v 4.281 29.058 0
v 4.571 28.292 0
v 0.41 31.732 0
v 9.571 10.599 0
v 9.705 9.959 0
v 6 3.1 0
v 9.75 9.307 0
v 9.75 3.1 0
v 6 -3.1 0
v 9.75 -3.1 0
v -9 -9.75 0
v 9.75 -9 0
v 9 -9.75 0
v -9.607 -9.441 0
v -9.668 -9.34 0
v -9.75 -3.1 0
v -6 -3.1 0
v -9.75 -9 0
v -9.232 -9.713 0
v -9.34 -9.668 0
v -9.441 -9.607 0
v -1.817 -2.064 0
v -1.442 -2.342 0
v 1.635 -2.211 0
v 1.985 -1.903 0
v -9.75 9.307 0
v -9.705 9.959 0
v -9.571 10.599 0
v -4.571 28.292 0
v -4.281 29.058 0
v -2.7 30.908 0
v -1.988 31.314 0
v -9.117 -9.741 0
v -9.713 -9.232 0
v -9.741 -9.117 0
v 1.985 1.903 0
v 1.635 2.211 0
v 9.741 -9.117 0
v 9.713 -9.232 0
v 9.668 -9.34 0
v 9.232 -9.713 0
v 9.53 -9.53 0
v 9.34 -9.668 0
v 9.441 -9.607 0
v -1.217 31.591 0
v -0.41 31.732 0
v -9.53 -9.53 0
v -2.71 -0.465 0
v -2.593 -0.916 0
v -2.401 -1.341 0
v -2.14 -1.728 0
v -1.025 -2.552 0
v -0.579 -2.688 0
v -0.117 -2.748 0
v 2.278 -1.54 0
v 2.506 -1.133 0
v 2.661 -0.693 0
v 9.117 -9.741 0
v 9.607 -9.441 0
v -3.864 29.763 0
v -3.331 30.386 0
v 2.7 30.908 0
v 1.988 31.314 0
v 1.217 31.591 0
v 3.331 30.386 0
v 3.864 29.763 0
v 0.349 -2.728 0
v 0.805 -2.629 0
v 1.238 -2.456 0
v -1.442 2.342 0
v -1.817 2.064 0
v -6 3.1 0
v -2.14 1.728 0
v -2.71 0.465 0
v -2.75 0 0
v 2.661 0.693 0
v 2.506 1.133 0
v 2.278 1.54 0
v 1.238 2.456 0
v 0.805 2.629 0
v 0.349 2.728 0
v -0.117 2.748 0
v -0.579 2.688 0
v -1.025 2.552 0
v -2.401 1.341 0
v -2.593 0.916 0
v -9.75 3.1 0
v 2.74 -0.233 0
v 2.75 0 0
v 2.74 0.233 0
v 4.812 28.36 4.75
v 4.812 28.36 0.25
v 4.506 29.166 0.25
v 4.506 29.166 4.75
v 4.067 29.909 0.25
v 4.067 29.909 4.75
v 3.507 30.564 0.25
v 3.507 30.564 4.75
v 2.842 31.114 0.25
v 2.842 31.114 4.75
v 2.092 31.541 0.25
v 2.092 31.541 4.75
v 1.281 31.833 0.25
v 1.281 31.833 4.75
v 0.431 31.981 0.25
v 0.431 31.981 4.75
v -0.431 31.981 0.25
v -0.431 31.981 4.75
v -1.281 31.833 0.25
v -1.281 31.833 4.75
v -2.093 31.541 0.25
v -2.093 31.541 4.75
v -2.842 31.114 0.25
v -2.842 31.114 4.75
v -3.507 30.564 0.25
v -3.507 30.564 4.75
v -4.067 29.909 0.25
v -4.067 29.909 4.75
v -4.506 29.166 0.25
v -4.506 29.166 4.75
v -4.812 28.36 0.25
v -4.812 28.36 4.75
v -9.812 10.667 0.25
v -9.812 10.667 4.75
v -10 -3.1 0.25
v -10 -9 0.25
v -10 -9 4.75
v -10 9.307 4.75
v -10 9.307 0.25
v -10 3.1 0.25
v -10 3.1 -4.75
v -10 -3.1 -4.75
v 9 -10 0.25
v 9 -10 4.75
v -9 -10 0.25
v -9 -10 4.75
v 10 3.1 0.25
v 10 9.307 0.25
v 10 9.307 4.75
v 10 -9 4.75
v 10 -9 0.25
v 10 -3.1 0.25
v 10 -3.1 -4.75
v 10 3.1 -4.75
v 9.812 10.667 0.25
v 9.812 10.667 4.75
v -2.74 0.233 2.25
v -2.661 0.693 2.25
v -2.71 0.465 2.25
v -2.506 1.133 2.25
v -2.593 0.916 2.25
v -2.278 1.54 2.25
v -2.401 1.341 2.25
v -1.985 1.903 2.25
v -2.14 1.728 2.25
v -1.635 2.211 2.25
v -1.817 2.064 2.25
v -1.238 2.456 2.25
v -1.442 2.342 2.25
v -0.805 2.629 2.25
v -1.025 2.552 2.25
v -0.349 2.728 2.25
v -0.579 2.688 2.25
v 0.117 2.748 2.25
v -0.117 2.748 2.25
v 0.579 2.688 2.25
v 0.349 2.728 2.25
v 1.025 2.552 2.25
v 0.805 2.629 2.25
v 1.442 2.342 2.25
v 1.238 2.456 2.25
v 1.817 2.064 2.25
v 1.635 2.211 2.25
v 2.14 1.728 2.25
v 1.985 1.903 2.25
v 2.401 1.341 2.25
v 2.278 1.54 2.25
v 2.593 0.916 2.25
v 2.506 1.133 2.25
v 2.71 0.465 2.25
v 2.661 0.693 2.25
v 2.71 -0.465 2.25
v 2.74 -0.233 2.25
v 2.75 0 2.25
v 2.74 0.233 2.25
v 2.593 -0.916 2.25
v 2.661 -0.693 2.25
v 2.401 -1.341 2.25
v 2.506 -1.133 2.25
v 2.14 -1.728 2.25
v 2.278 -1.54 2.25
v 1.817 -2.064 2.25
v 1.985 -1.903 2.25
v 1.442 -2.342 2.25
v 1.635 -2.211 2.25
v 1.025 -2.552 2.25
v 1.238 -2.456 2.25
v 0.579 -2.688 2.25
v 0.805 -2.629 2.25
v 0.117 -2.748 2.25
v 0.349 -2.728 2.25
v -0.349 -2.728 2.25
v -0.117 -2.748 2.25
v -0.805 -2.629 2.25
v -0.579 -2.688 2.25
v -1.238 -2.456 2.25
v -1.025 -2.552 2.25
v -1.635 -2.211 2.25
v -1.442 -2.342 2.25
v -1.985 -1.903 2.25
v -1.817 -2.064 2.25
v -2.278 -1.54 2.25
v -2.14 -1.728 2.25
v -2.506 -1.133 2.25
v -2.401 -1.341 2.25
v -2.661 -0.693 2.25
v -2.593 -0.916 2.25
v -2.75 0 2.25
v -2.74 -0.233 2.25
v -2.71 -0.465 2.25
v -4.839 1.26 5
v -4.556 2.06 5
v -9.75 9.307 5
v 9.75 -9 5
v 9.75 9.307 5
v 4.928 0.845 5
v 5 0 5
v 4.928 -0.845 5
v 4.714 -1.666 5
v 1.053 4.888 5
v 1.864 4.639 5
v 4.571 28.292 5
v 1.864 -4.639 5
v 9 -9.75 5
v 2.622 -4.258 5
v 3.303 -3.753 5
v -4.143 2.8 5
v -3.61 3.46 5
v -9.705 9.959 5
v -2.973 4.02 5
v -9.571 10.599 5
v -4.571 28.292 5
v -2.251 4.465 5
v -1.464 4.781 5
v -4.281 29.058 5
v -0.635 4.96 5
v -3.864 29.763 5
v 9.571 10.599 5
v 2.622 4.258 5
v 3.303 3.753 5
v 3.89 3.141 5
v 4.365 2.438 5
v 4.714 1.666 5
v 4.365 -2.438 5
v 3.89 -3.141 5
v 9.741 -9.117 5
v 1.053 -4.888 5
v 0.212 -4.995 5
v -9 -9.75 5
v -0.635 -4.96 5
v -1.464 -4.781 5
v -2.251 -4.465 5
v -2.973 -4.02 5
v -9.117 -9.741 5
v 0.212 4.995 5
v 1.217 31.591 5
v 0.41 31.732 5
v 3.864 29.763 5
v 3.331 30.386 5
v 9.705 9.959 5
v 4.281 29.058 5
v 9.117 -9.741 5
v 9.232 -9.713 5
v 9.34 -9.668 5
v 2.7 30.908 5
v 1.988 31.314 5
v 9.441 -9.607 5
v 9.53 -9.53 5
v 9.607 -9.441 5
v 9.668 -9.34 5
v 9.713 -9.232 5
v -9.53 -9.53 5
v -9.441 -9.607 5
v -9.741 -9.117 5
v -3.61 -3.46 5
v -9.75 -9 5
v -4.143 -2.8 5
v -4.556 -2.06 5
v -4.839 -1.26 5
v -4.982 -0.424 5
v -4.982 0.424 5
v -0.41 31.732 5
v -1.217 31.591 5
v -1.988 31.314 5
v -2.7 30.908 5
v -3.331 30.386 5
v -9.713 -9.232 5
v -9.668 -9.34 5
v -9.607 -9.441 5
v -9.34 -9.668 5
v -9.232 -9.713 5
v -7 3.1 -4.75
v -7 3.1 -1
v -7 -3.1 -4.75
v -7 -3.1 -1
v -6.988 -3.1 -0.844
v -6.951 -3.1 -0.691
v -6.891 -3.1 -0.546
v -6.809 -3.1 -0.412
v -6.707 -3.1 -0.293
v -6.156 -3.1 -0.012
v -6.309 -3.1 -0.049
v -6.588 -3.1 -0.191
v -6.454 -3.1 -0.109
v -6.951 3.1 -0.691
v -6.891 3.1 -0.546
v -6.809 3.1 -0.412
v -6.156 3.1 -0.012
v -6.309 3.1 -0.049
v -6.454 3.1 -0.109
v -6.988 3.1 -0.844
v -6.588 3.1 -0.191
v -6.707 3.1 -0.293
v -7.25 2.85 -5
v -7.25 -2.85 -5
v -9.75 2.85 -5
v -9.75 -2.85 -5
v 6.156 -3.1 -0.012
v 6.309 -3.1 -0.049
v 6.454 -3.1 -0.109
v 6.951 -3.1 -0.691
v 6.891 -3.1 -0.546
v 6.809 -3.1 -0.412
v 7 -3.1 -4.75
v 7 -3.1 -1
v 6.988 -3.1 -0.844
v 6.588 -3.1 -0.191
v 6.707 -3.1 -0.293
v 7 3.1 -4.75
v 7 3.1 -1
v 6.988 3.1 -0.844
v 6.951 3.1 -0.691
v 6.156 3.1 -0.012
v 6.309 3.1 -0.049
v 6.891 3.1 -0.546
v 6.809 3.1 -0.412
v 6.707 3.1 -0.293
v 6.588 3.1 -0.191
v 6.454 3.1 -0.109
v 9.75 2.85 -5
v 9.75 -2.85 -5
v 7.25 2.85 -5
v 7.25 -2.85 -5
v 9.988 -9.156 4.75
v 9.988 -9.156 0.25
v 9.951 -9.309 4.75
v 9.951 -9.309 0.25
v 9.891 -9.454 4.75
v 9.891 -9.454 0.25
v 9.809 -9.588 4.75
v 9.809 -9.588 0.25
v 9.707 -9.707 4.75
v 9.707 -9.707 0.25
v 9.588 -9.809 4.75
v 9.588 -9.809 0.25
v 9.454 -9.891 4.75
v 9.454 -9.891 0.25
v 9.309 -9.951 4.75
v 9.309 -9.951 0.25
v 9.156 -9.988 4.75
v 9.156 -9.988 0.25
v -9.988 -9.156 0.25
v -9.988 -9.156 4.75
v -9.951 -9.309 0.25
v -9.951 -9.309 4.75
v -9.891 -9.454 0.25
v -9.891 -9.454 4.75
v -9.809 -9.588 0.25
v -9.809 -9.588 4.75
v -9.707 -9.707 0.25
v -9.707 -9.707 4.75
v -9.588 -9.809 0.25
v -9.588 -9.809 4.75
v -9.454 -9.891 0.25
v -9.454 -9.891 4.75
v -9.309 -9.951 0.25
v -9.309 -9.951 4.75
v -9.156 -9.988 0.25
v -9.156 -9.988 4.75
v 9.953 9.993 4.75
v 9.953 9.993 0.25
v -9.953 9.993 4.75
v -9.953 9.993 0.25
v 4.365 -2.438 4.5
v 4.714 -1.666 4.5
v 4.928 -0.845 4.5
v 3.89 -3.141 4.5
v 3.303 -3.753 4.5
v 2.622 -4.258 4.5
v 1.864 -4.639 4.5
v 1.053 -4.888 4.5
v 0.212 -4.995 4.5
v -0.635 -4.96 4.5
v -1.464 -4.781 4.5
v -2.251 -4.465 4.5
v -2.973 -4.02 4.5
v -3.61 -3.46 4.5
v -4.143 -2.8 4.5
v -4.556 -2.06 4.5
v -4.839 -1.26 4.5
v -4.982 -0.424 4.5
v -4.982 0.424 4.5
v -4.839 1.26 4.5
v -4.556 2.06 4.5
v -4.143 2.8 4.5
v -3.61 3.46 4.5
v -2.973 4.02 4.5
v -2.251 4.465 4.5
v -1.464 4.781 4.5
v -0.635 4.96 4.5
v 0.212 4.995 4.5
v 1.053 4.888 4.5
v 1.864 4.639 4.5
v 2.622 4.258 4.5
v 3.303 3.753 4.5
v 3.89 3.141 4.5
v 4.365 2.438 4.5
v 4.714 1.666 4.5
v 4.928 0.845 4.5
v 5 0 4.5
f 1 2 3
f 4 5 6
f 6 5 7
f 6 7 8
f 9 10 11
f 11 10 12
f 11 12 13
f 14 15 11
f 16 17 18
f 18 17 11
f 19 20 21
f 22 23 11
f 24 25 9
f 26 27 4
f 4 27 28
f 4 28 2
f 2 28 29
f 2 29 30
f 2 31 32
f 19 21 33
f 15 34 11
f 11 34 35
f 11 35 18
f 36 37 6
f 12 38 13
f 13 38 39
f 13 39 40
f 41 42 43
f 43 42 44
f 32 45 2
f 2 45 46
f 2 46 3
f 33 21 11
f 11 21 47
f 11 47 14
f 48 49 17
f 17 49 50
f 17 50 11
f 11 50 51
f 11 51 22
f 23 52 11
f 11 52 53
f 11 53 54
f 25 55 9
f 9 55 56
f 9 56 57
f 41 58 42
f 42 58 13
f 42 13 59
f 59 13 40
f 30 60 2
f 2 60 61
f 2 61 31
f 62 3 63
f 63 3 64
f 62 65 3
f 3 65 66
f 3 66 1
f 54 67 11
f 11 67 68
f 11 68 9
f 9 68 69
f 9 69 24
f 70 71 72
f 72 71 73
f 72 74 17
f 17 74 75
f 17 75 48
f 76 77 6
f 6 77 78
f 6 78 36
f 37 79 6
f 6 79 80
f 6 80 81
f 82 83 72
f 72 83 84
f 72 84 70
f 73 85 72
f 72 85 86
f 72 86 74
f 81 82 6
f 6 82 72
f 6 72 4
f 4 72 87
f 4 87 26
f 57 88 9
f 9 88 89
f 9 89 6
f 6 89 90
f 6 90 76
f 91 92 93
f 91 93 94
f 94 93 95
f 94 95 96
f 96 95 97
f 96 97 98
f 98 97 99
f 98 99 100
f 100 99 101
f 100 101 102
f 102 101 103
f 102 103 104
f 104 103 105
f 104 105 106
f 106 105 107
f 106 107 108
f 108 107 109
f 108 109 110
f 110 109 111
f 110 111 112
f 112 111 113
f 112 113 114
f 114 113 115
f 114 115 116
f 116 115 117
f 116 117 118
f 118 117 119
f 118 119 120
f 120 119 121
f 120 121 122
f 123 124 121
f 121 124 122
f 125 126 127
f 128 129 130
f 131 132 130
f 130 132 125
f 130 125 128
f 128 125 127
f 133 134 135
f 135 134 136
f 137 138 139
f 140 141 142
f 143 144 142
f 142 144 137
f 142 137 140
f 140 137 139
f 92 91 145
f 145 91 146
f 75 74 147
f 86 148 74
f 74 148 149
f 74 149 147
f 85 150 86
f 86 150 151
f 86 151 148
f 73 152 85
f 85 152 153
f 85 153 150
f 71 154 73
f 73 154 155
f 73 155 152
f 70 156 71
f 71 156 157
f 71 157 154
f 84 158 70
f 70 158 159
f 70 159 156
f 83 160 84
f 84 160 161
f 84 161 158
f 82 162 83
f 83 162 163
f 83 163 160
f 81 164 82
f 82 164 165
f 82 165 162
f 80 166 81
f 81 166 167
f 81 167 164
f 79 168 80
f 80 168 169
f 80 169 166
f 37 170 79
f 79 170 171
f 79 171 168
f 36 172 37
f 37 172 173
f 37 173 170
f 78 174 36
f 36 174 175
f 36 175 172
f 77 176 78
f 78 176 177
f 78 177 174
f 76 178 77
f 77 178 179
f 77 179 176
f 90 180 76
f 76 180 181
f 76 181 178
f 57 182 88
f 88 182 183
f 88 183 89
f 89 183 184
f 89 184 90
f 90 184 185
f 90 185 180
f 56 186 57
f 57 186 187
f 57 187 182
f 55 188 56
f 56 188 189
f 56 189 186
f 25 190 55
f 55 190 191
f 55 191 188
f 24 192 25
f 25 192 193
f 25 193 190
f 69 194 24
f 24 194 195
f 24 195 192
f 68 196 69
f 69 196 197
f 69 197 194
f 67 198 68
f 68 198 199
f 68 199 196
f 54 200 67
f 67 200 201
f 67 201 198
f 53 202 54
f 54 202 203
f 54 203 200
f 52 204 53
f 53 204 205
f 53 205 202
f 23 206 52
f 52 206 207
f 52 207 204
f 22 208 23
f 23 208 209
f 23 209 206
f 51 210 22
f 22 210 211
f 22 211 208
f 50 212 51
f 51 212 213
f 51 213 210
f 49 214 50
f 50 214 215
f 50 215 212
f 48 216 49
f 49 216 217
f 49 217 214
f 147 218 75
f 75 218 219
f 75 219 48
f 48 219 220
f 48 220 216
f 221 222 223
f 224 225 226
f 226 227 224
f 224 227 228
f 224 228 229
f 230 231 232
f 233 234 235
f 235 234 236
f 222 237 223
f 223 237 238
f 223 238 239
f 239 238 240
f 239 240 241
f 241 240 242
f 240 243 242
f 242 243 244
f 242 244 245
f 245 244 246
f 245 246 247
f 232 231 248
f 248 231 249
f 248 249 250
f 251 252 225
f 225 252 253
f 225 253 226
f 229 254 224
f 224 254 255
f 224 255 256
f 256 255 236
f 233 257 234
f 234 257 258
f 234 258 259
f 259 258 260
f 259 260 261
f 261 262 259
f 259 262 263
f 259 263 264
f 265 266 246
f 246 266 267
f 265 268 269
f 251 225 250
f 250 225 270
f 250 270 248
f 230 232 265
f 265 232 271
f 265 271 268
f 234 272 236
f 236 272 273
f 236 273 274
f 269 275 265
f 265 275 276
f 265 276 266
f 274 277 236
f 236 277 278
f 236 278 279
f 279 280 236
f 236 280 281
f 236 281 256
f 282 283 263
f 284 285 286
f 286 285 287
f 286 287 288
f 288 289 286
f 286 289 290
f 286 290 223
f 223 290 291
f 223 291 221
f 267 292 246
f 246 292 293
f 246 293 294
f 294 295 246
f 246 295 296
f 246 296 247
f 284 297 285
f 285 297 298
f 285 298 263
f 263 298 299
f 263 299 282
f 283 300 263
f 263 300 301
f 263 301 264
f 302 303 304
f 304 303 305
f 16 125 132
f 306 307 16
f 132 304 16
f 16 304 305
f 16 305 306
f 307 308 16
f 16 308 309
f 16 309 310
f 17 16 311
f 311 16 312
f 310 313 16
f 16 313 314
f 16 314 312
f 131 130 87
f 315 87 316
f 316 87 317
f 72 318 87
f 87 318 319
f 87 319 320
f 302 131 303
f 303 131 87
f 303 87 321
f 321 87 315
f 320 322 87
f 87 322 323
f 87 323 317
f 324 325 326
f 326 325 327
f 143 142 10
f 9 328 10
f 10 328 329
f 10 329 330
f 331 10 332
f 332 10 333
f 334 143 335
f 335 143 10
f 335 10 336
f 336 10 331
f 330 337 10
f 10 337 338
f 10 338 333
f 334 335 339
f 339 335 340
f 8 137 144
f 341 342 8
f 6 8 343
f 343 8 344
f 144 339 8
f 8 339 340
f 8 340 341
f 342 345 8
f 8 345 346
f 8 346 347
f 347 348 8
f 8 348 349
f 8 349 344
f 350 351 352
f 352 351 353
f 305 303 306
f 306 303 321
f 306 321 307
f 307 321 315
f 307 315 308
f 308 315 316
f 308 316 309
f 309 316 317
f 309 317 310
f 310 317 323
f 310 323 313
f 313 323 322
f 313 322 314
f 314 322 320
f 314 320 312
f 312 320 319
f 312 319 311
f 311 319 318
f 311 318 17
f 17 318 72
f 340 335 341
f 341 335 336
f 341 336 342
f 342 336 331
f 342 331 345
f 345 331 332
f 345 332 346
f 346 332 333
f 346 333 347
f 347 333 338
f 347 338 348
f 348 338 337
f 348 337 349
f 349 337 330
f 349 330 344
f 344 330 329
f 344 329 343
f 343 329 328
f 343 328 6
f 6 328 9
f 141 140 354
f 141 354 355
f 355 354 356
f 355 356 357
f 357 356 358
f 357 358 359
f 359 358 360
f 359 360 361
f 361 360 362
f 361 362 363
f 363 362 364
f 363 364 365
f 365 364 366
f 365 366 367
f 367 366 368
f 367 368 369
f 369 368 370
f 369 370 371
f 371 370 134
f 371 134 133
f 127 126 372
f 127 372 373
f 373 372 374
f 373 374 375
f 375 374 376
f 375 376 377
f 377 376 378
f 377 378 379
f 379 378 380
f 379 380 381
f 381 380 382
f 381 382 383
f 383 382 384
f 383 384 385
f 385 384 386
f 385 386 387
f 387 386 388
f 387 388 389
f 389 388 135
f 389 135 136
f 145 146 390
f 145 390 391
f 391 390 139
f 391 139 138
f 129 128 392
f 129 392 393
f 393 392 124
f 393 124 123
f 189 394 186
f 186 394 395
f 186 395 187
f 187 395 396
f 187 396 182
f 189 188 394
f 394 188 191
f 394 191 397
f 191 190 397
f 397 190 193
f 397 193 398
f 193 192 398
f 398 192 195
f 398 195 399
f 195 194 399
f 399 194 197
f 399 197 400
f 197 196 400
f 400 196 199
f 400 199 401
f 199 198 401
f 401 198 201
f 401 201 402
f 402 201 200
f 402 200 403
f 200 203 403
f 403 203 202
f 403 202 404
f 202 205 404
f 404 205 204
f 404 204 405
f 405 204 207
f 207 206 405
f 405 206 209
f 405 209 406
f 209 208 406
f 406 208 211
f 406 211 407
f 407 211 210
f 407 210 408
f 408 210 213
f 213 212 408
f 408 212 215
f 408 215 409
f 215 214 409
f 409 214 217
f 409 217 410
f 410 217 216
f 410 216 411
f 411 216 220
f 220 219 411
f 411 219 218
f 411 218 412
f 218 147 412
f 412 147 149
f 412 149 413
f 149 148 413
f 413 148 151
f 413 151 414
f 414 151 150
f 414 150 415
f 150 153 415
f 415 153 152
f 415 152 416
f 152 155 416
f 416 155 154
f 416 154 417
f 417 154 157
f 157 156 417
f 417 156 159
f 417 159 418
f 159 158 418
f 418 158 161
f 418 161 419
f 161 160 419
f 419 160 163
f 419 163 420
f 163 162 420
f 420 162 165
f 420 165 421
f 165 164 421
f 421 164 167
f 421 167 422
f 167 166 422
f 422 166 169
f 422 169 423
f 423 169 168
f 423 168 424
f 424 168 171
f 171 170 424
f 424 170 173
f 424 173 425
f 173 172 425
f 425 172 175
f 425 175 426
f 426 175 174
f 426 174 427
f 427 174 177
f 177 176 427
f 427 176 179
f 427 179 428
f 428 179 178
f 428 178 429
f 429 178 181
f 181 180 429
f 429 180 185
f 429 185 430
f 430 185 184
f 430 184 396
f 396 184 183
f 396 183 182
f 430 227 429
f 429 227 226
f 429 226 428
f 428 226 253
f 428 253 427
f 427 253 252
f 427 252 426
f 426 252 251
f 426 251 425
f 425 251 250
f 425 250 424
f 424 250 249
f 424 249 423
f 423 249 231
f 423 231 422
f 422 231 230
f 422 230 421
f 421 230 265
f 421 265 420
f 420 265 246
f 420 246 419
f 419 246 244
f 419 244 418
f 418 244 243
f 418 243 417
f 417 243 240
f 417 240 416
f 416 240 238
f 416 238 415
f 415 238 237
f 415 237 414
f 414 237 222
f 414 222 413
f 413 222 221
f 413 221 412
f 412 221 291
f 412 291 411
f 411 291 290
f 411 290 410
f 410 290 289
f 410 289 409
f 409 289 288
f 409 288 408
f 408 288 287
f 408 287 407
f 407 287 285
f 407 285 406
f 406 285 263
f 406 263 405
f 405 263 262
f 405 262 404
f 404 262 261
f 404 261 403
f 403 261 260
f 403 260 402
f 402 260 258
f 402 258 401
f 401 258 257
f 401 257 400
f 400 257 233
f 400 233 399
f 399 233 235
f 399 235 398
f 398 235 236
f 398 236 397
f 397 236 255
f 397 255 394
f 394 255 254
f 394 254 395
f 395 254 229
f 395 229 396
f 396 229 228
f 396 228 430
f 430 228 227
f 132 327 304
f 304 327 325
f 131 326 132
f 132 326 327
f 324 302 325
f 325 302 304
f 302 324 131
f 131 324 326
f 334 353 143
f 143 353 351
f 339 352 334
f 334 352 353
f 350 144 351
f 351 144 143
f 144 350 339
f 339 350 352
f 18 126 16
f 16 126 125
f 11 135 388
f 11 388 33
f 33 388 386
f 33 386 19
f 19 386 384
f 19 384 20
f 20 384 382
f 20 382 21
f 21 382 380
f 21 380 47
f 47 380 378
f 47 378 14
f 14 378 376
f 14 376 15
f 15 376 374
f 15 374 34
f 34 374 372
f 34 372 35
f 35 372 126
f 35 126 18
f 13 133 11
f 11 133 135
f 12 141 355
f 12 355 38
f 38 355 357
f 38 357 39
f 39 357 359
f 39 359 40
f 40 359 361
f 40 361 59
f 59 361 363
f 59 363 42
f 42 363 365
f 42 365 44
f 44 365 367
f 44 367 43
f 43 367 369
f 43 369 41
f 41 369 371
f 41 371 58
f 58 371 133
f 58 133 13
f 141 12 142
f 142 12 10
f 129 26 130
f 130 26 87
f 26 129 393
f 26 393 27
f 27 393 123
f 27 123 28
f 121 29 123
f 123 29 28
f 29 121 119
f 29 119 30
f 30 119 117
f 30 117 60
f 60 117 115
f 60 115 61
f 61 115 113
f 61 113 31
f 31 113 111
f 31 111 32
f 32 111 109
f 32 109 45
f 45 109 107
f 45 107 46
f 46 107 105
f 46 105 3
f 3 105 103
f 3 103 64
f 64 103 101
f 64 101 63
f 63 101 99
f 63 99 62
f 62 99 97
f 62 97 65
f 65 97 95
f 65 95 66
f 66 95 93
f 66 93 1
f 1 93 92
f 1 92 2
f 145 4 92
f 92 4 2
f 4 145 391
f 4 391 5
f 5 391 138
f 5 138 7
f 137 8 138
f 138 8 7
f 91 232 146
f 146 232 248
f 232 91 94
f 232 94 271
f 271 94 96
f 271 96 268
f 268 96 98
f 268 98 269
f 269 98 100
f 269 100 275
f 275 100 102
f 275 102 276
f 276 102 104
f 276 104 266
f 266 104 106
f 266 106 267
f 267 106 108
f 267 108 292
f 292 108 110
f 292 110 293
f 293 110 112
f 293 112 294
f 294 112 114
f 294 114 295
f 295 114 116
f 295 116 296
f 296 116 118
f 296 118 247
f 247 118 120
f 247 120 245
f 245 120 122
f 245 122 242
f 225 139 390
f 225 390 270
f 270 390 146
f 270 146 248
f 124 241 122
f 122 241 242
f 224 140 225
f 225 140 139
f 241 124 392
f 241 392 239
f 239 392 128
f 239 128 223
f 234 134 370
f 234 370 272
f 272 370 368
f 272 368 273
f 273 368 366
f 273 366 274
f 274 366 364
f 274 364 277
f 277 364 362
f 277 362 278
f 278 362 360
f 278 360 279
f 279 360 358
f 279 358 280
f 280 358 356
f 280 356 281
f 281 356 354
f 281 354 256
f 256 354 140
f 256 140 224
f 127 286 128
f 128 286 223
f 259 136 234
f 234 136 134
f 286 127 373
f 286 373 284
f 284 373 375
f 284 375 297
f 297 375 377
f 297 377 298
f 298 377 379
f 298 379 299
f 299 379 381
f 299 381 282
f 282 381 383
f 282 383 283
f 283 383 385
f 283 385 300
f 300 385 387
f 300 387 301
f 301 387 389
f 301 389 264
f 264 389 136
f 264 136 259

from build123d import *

# Parameters (mm, degrees)
SKETCH1_R           = 5
SKETCH1_R_2         = 2.75
BOSS_EXTRUDE1_DEPTH = 5
SKETCH2_W           = 3
SKETCH2_H           = 6.2
BOSS_EXTRUDE2_DEPTH = 5
FILLET1_R           = 1
FILLET2_R           = 5
CHAMFER1_SIZE       = 0.25


with BuildPart() as part:
    # Sketch1 → Boss-Extrude1 (new body)
    # profile 1 of 2: a face of its own
    with BuildSketch(Plane.XY):
        with Locations((0, 27)):
            Circle(SKETCH1_R)
    # profile 2 of 2: a face of its own
    with BuildSketch(Plane.XY):
        with BuildLine():
            Line((-4.811559492, 28.359740878), (-10, 10))
            Line((-10, 10), (-10, -10))
            Line((-10, -10), (10, -10))
            Line((10, -10), (10, 10))
            Line((10, 10), (4.811559492, 28.359740878))
            ThreePointArc((4.811559492, 28.359740878), (4.952665821, 27.686368174), (5, 27))
            ThreePointArc((5, 27), (-0.686368174, 22.047334179), (-4.811559492, 28.359740878))
        make_face()
        Circle(SKETCH1_R_2, mode=Mode.SUBTRACT)
    extrude(amount=BOSS_EXTRUDE1_DEPTH)

    # Sketch2 → Boss-Extrude2 (add)
    with BuildSketch(Plane(origin=(0, 0, 0), x_dir=(-1, 0, 0), z_dir=(0, 0, -1))):
        with Locations((-8.5, 0)):
            Rectangle(SKETCH2_W, SKETCH2_H)
        with Locations((8.5, 0)):
            Rectangle(SKETCH2_W, SKETCH2_H)
    extrude(amount=BOSS_EXTRUDE2_DEPTH)

    # Fillet1
    fillet1_edges = [part.edges().sort_by_distance(p)[0] for p in [
        (10, -10, 2.5),
        (-10, -10, 2.5),
        (7, 0, 0),
        (-7, 0, 0),
    ]]
    fillet(fillet1_edges, radius=FILLET1_R)

    # Fillet2
    fillet2_edges = [part.edges().sort_by_distance(p)[0] for p in [
        (10, 10, 2.5),
        (-10, 10, 2.5),
    ]]
    fillet(fillet2_edges, radius=FILLET2_R)

    # Sketch4 → CSK for M5 Flat Head Machine Screw1 (revolve, cut)
    with BuildSketch(Plane(origin=(0, 0, 5), x_dir=(0, -1, 0), z_dir=(1, 0, 0))):
        Polygon((0, 0), (0, 10), (2.75, 10), (2.75, 2.75), (5, 0.5), (5, 0), align=None)
    revolve(axis=Axis((0, 0, 11.35), (0, 0, -1)), mode=Mode.SUBTRACT)

    # Chamfer1
    chamfer1_edges = [part.edges().sort_by_distance(p)[0] for p in [
        (-10, 6.203535995, 0),
        (-7.311559492, 19.513276873, 0),
        (10, 6.203535995, 0),
        (-9.952665821, 9.993440164, 0),
        (9.952665821, 9.993440164, 0),
        (10, 0.153535995, 5),
        (-7.311559492, 19.513276873, 5),
        (-10, 0.153535995, 5),
        (-9.952665821, 9.993440164, 5),
        (9.952665821, 9.993440164, 5),
        (0, 32, 0),
        (10, -6.05, 0),
        (-10, -6.05, 0),
        (10, 0, -5),
        (8.5, -3.1, -5),
        (7, 0, -5),
        (8.5, 3.1, -5),
        (-7, 0, -5),
        (-8.5, -3.1, -5),
        (-10, 0, -5),
        (-8.5, 3.1, -5),
        (0, -10, 0),
        (-9.707106781, -9.707106781, 0),
        (9.707106781, -9.707106781, 0),
        (0, -10, 5),
        (0, 32, 5),
        (-9.707106781, -9.707106781, 5),
        (9.707106781, -9.707106781, 5),
        (7.311559492, 19.513276873, 0),
        (7.311559492, 19.513276873, 5),
    ]]
    chamfer(chamfer1_edges, length=CHAMFER1_SIZE)


solid = part.part
